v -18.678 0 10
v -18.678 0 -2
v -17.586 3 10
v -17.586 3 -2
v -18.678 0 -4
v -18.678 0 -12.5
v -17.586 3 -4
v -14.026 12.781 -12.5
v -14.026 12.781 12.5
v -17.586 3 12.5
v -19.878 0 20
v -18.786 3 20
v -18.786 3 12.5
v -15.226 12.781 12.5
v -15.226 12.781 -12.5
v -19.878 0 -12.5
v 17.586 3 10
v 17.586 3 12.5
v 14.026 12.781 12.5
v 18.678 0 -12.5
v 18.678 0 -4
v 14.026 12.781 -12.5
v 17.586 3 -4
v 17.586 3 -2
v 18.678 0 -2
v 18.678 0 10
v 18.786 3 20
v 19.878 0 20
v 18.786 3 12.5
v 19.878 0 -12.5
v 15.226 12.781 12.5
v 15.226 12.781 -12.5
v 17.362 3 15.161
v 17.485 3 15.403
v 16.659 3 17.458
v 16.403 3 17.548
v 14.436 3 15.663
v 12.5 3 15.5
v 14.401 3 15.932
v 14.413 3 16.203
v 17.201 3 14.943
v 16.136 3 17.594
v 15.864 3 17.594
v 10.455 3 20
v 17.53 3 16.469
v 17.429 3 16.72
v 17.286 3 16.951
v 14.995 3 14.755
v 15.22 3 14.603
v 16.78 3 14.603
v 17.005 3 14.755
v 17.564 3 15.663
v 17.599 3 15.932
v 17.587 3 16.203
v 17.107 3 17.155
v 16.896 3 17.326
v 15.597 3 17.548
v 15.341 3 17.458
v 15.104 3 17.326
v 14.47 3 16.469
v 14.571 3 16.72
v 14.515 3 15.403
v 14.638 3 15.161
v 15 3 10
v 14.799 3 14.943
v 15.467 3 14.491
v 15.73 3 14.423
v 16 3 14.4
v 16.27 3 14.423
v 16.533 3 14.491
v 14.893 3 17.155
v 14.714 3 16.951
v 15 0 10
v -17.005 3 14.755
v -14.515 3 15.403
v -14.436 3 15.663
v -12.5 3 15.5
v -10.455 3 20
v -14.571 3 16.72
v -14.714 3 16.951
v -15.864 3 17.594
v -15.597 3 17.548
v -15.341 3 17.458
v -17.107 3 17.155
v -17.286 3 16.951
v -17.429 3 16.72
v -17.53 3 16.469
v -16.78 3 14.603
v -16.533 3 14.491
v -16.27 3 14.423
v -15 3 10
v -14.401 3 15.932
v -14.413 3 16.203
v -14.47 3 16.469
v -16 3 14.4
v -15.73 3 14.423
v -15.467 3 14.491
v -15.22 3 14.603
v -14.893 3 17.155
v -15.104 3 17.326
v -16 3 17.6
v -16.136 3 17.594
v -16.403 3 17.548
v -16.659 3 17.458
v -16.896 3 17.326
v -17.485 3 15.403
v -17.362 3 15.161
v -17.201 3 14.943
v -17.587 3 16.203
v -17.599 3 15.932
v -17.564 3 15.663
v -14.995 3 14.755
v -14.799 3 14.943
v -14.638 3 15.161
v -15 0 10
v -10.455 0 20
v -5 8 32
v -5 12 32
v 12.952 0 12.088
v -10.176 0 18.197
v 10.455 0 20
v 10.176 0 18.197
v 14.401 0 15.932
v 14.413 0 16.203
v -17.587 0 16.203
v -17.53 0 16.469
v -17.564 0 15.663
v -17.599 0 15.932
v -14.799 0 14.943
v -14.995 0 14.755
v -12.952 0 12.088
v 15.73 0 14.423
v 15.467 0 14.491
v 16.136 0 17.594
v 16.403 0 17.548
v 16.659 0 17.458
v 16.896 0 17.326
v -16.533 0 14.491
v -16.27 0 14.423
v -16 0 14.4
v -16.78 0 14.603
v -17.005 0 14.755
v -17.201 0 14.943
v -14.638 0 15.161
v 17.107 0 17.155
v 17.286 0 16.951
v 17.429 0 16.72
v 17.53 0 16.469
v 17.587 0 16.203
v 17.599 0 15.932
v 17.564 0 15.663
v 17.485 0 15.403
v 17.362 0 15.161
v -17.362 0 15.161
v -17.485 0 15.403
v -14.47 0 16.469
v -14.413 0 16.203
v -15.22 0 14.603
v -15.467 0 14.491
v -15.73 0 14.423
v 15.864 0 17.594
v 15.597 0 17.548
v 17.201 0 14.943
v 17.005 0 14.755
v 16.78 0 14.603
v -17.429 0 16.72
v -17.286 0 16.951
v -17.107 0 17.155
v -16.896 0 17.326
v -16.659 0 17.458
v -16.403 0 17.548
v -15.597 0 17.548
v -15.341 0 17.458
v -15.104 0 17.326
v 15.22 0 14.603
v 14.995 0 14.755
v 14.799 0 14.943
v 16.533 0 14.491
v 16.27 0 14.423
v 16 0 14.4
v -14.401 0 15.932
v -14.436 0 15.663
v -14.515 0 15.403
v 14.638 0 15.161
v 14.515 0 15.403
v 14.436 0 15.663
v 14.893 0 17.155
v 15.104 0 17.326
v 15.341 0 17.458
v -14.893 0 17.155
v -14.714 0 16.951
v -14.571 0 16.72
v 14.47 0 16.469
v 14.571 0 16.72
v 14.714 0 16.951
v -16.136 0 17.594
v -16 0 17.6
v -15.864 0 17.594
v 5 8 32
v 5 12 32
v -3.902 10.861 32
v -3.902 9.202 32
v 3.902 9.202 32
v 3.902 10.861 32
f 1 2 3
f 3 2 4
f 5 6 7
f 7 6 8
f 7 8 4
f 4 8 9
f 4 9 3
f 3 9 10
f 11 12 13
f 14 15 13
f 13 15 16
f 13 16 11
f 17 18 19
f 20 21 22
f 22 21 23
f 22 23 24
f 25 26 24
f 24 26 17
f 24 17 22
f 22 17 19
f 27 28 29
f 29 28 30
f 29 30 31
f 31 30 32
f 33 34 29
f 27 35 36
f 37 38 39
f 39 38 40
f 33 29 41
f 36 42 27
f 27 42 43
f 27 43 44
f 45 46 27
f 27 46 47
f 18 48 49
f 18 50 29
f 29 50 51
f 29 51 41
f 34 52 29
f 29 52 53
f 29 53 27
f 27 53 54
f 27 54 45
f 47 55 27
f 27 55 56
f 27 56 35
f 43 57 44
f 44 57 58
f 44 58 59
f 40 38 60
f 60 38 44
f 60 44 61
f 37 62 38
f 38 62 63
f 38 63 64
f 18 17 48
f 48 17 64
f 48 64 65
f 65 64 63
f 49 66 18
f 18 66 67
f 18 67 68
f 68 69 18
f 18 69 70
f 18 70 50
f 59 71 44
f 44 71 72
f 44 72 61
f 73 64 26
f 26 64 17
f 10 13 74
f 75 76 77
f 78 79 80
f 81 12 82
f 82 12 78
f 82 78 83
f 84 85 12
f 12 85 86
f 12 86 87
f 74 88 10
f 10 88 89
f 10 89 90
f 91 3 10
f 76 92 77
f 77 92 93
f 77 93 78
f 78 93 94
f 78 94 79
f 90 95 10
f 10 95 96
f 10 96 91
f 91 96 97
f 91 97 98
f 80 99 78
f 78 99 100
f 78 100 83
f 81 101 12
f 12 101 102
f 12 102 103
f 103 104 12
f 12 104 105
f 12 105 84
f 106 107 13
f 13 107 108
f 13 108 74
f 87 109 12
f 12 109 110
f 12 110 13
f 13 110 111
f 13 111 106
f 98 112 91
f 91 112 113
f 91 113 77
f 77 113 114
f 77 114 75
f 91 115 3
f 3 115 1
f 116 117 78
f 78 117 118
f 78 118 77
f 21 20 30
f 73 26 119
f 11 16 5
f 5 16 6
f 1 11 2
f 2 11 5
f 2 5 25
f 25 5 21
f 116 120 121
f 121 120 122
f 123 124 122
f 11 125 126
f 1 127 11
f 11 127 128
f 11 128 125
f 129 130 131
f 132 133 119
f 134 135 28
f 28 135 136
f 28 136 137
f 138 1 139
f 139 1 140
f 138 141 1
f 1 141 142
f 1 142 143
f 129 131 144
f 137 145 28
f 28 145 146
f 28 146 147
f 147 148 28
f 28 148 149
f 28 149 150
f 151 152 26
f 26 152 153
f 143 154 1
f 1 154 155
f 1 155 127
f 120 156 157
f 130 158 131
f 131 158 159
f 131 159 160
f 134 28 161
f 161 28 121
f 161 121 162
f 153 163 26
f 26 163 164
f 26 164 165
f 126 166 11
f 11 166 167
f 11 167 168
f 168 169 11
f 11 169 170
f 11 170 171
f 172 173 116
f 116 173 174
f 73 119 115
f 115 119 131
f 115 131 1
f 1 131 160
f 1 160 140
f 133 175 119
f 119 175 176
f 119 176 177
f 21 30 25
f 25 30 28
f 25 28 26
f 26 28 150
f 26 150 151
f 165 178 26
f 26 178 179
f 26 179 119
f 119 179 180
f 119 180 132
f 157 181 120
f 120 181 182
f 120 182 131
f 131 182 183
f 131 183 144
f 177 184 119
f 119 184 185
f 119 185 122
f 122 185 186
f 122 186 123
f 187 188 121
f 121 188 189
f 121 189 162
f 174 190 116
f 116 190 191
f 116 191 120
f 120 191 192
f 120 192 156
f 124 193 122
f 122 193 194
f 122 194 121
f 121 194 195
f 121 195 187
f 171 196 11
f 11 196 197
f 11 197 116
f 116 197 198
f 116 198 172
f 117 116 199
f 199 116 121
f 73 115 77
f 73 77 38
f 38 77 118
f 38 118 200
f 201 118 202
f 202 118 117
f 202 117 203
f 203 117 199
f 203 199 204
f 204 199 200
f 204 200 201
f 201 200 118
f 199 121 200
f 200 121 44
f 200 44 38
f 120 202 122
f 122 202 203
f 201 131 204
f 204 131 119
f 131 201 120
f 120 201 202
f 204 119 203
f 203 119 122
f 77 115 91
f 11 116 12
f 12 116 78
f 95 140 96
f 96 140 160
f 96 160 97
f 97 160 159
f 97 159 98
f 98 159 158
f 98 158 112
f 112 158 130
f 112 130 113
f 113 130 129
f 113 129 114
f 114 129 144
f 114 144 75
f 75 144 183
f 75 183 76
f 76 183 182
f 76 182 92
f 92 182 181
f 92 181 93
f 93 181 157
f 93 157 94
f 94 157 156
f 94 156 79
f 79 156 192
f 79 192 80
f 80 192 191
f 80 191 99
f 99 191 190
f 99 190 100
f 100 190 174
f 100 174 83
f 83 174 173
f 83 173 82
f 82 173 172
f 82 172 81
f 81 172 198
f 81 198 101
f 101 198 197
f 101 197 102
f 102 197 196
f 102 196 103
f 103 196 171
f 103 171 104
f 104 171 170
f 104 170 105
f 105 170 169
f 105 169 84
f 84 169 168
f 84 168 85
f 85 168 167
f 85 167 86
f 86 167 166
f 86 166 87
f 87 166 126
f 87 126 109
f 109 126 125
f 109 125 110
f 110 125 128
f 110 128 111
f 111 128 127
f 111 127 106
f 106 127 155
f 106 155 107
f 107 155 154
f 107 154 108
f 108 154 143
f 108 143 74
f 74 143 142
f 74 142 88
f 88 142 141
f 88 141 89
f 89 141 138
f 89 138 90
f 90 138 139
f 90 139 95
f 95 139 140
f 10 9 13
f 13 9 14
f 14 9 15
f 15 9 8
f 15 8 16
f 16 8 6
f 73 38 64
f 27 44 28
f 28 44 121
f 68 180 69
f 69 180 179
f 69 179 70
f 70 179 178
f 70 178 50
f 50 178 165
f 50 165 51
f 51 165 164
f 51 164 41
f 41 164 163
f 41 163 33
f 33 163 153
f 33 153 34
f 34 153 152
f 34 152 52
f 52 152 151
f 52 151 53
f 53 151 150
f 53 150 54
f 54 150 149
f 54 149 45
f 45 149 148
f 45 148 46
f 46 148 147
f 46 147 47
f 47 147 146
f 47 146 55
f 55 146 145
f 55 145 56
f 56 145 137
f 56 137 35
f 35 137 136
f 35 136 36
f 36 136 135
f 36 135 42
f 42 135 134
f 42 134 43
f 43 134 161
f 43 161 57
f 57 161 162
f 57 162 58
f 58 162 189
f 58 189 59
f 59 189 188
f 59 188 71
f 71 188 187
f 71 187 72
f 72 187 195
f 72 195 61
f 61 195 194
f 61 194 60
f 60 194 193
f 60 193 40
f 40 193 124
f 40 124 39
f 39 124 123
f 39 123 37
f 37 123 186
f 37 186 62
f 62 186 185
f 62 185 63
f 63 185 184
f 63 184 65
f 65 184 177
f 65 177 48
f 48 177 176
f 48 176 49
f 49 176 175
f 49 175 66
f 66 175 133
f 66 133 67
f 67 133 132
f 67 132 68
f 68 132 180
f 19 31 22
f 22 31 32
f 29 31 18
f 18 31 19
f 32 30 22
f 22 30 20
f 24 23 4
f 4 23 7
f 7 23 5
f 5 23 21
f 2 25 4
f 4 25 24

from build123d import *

# Parameters (mm, degrees)
EXTRUDE_3_DEPTH     = 15
CUT_EXTRUDE_1_DEPTH = 30
SHELL_3_T           = -1
EXTRUDE_4_DEPTH     = 12.5
EXTRUDE_4_2_DEPTH   = 12.5
SKETCH_6_R          = 1.6
SKETCH_6_W          = 40
SKETCH_6_H          = 2
EXTRUDE_5_DEPTH     = 3
CUT_EXTRUDE_2_DEPTH = 61


with BuildPart() as part:
    # 草圖2 → 填料-伸長3 (new, symmetric)
    with BuildSketch(Plane(origin=(0, 0, 0), x_dir=(0, 0, -1), z_dir=(1, 0, 0))):
        Polygon((-20, 0), (-10, 0), (-32, 12), (-32, 8), align=None)
    extrude(amount=EXTRUDE_3_DEPTH, both=True)

    # 草圖3 → 除料-伸長1 (cut)
    with BuildSketch(Plane(origin=(0, 0, 0), x_dir=(1, 0, 0), z_dir=(0, 1, 0))):
        Polygon((-15, -10), (-15, -32), (-5, -32), align=None)
        Polygon((5, -32), (15, -10), (15, -32), align=None)
    extrude(amount=CUT_EXTRUDE_1_DEPTH, mode=Mode.SUBTRACT)

    # 薄殼3
    shell_3_openings = [part.faces().sort_by_distance(p)[0] for p in [
        (0, 10, 32),
        (0, 0, 14.702380952),
    ]]
    offset(amount=SHELL_3_T, openings=shell_3_openings, kind=Kind.INTERSECTION)



with BuildPart() as body_2:
    # 草圖5 → 填料-伸長4 (new, symmetric)
    with BuildSketch(Plane.XY):
        Polygon((-19.878151447, 0), (-15.226425738, 12.780511349), (-14.026425738, 12.780511349), (-18.678151447, 0), align=None)
    extrude(amount=EXTRUDE_4_DEPTH, both=True)


with BuildPart() as body_3:
    # 草圖5 → Extrude 4 2 (new, symmetric)
    with BuildSketch(Plane.XY):
        Polygon((18.678151447, 0), (19.878151447, 0), (15.226425738, 12.780511349), (14.026425738, 12.780511349), align=None)
    extrude(amount=EXTRUDE_4_2_DEPTH, both=True)


with BuildPart() as part_1:
    add(part.part)

    add(body_2.part)  # 填料-伸長5 merges body 2

    add(body_3.part)  # 填料-伸長5 merges body 3
    # 草圖6 → 填料-伸長5 (add)
    # profile 1 of 3: a face of its own
    with BuildSketch(Plane(origin=(0, 0, 0), x_dir=(1, 0, 0), z_dir=(0, 1, 0))):
        Polygon((-20, -10), (-15, -10), (-10.454545455, -20), (-20, -20), align=None)
        with Locations(Location((-16, -16, 0), (0, 0, 270))):
            Circle(SKETCH_6_R, mode=Mode.SUBTRACT)
    # profile 2 of 3: a face of its own
    with BuildSketch(Plane(origin=(0, 0, 0), x_dir=(1, 0, 0), z_dir=(0, 1, 0))):
        Polygon((20, -20), (20, -10), (15, -10), (10.454545455, -20), align=None)
        with Locations(Location((16, -16, 0), (0, 0, 90))):
            Circle(SKETCH_6_R, mode=Mode.SUBTRACT)
    # profile 3 of 3: a face of its own
    with BuildSketch(Plane(origin=(0, 0, 0), x_dir=(1, 0, 0), z_dir=(0, 1, 0))):
        with Locations((0, 3)):
            Rectangle(SKETCH_6_W, SKETCH_6_H)
    extrude(amount=EXTRUDE_5_DEPTH)

    # 草圖7 → 除料-伸長2 (cut)
    with BuildSketch(Plane(origin=(0, 0, -12.5), x_dir=(-1, 0, 0), z_dir=(0, 0, -1))):
        Polygon((-20, 3), (-18.786240745, 3), (-19.878151447, 0), (-20, 0), align=None)
        Polygon((20, 0), (20, 3), (18.786240745, 3), (19.878151447, 0), align=None)
    extrude(amount=-CUT_EXTRUDE_2_DEPTH, mode=Mode.SUBTRACT)


solid = part_1.part
